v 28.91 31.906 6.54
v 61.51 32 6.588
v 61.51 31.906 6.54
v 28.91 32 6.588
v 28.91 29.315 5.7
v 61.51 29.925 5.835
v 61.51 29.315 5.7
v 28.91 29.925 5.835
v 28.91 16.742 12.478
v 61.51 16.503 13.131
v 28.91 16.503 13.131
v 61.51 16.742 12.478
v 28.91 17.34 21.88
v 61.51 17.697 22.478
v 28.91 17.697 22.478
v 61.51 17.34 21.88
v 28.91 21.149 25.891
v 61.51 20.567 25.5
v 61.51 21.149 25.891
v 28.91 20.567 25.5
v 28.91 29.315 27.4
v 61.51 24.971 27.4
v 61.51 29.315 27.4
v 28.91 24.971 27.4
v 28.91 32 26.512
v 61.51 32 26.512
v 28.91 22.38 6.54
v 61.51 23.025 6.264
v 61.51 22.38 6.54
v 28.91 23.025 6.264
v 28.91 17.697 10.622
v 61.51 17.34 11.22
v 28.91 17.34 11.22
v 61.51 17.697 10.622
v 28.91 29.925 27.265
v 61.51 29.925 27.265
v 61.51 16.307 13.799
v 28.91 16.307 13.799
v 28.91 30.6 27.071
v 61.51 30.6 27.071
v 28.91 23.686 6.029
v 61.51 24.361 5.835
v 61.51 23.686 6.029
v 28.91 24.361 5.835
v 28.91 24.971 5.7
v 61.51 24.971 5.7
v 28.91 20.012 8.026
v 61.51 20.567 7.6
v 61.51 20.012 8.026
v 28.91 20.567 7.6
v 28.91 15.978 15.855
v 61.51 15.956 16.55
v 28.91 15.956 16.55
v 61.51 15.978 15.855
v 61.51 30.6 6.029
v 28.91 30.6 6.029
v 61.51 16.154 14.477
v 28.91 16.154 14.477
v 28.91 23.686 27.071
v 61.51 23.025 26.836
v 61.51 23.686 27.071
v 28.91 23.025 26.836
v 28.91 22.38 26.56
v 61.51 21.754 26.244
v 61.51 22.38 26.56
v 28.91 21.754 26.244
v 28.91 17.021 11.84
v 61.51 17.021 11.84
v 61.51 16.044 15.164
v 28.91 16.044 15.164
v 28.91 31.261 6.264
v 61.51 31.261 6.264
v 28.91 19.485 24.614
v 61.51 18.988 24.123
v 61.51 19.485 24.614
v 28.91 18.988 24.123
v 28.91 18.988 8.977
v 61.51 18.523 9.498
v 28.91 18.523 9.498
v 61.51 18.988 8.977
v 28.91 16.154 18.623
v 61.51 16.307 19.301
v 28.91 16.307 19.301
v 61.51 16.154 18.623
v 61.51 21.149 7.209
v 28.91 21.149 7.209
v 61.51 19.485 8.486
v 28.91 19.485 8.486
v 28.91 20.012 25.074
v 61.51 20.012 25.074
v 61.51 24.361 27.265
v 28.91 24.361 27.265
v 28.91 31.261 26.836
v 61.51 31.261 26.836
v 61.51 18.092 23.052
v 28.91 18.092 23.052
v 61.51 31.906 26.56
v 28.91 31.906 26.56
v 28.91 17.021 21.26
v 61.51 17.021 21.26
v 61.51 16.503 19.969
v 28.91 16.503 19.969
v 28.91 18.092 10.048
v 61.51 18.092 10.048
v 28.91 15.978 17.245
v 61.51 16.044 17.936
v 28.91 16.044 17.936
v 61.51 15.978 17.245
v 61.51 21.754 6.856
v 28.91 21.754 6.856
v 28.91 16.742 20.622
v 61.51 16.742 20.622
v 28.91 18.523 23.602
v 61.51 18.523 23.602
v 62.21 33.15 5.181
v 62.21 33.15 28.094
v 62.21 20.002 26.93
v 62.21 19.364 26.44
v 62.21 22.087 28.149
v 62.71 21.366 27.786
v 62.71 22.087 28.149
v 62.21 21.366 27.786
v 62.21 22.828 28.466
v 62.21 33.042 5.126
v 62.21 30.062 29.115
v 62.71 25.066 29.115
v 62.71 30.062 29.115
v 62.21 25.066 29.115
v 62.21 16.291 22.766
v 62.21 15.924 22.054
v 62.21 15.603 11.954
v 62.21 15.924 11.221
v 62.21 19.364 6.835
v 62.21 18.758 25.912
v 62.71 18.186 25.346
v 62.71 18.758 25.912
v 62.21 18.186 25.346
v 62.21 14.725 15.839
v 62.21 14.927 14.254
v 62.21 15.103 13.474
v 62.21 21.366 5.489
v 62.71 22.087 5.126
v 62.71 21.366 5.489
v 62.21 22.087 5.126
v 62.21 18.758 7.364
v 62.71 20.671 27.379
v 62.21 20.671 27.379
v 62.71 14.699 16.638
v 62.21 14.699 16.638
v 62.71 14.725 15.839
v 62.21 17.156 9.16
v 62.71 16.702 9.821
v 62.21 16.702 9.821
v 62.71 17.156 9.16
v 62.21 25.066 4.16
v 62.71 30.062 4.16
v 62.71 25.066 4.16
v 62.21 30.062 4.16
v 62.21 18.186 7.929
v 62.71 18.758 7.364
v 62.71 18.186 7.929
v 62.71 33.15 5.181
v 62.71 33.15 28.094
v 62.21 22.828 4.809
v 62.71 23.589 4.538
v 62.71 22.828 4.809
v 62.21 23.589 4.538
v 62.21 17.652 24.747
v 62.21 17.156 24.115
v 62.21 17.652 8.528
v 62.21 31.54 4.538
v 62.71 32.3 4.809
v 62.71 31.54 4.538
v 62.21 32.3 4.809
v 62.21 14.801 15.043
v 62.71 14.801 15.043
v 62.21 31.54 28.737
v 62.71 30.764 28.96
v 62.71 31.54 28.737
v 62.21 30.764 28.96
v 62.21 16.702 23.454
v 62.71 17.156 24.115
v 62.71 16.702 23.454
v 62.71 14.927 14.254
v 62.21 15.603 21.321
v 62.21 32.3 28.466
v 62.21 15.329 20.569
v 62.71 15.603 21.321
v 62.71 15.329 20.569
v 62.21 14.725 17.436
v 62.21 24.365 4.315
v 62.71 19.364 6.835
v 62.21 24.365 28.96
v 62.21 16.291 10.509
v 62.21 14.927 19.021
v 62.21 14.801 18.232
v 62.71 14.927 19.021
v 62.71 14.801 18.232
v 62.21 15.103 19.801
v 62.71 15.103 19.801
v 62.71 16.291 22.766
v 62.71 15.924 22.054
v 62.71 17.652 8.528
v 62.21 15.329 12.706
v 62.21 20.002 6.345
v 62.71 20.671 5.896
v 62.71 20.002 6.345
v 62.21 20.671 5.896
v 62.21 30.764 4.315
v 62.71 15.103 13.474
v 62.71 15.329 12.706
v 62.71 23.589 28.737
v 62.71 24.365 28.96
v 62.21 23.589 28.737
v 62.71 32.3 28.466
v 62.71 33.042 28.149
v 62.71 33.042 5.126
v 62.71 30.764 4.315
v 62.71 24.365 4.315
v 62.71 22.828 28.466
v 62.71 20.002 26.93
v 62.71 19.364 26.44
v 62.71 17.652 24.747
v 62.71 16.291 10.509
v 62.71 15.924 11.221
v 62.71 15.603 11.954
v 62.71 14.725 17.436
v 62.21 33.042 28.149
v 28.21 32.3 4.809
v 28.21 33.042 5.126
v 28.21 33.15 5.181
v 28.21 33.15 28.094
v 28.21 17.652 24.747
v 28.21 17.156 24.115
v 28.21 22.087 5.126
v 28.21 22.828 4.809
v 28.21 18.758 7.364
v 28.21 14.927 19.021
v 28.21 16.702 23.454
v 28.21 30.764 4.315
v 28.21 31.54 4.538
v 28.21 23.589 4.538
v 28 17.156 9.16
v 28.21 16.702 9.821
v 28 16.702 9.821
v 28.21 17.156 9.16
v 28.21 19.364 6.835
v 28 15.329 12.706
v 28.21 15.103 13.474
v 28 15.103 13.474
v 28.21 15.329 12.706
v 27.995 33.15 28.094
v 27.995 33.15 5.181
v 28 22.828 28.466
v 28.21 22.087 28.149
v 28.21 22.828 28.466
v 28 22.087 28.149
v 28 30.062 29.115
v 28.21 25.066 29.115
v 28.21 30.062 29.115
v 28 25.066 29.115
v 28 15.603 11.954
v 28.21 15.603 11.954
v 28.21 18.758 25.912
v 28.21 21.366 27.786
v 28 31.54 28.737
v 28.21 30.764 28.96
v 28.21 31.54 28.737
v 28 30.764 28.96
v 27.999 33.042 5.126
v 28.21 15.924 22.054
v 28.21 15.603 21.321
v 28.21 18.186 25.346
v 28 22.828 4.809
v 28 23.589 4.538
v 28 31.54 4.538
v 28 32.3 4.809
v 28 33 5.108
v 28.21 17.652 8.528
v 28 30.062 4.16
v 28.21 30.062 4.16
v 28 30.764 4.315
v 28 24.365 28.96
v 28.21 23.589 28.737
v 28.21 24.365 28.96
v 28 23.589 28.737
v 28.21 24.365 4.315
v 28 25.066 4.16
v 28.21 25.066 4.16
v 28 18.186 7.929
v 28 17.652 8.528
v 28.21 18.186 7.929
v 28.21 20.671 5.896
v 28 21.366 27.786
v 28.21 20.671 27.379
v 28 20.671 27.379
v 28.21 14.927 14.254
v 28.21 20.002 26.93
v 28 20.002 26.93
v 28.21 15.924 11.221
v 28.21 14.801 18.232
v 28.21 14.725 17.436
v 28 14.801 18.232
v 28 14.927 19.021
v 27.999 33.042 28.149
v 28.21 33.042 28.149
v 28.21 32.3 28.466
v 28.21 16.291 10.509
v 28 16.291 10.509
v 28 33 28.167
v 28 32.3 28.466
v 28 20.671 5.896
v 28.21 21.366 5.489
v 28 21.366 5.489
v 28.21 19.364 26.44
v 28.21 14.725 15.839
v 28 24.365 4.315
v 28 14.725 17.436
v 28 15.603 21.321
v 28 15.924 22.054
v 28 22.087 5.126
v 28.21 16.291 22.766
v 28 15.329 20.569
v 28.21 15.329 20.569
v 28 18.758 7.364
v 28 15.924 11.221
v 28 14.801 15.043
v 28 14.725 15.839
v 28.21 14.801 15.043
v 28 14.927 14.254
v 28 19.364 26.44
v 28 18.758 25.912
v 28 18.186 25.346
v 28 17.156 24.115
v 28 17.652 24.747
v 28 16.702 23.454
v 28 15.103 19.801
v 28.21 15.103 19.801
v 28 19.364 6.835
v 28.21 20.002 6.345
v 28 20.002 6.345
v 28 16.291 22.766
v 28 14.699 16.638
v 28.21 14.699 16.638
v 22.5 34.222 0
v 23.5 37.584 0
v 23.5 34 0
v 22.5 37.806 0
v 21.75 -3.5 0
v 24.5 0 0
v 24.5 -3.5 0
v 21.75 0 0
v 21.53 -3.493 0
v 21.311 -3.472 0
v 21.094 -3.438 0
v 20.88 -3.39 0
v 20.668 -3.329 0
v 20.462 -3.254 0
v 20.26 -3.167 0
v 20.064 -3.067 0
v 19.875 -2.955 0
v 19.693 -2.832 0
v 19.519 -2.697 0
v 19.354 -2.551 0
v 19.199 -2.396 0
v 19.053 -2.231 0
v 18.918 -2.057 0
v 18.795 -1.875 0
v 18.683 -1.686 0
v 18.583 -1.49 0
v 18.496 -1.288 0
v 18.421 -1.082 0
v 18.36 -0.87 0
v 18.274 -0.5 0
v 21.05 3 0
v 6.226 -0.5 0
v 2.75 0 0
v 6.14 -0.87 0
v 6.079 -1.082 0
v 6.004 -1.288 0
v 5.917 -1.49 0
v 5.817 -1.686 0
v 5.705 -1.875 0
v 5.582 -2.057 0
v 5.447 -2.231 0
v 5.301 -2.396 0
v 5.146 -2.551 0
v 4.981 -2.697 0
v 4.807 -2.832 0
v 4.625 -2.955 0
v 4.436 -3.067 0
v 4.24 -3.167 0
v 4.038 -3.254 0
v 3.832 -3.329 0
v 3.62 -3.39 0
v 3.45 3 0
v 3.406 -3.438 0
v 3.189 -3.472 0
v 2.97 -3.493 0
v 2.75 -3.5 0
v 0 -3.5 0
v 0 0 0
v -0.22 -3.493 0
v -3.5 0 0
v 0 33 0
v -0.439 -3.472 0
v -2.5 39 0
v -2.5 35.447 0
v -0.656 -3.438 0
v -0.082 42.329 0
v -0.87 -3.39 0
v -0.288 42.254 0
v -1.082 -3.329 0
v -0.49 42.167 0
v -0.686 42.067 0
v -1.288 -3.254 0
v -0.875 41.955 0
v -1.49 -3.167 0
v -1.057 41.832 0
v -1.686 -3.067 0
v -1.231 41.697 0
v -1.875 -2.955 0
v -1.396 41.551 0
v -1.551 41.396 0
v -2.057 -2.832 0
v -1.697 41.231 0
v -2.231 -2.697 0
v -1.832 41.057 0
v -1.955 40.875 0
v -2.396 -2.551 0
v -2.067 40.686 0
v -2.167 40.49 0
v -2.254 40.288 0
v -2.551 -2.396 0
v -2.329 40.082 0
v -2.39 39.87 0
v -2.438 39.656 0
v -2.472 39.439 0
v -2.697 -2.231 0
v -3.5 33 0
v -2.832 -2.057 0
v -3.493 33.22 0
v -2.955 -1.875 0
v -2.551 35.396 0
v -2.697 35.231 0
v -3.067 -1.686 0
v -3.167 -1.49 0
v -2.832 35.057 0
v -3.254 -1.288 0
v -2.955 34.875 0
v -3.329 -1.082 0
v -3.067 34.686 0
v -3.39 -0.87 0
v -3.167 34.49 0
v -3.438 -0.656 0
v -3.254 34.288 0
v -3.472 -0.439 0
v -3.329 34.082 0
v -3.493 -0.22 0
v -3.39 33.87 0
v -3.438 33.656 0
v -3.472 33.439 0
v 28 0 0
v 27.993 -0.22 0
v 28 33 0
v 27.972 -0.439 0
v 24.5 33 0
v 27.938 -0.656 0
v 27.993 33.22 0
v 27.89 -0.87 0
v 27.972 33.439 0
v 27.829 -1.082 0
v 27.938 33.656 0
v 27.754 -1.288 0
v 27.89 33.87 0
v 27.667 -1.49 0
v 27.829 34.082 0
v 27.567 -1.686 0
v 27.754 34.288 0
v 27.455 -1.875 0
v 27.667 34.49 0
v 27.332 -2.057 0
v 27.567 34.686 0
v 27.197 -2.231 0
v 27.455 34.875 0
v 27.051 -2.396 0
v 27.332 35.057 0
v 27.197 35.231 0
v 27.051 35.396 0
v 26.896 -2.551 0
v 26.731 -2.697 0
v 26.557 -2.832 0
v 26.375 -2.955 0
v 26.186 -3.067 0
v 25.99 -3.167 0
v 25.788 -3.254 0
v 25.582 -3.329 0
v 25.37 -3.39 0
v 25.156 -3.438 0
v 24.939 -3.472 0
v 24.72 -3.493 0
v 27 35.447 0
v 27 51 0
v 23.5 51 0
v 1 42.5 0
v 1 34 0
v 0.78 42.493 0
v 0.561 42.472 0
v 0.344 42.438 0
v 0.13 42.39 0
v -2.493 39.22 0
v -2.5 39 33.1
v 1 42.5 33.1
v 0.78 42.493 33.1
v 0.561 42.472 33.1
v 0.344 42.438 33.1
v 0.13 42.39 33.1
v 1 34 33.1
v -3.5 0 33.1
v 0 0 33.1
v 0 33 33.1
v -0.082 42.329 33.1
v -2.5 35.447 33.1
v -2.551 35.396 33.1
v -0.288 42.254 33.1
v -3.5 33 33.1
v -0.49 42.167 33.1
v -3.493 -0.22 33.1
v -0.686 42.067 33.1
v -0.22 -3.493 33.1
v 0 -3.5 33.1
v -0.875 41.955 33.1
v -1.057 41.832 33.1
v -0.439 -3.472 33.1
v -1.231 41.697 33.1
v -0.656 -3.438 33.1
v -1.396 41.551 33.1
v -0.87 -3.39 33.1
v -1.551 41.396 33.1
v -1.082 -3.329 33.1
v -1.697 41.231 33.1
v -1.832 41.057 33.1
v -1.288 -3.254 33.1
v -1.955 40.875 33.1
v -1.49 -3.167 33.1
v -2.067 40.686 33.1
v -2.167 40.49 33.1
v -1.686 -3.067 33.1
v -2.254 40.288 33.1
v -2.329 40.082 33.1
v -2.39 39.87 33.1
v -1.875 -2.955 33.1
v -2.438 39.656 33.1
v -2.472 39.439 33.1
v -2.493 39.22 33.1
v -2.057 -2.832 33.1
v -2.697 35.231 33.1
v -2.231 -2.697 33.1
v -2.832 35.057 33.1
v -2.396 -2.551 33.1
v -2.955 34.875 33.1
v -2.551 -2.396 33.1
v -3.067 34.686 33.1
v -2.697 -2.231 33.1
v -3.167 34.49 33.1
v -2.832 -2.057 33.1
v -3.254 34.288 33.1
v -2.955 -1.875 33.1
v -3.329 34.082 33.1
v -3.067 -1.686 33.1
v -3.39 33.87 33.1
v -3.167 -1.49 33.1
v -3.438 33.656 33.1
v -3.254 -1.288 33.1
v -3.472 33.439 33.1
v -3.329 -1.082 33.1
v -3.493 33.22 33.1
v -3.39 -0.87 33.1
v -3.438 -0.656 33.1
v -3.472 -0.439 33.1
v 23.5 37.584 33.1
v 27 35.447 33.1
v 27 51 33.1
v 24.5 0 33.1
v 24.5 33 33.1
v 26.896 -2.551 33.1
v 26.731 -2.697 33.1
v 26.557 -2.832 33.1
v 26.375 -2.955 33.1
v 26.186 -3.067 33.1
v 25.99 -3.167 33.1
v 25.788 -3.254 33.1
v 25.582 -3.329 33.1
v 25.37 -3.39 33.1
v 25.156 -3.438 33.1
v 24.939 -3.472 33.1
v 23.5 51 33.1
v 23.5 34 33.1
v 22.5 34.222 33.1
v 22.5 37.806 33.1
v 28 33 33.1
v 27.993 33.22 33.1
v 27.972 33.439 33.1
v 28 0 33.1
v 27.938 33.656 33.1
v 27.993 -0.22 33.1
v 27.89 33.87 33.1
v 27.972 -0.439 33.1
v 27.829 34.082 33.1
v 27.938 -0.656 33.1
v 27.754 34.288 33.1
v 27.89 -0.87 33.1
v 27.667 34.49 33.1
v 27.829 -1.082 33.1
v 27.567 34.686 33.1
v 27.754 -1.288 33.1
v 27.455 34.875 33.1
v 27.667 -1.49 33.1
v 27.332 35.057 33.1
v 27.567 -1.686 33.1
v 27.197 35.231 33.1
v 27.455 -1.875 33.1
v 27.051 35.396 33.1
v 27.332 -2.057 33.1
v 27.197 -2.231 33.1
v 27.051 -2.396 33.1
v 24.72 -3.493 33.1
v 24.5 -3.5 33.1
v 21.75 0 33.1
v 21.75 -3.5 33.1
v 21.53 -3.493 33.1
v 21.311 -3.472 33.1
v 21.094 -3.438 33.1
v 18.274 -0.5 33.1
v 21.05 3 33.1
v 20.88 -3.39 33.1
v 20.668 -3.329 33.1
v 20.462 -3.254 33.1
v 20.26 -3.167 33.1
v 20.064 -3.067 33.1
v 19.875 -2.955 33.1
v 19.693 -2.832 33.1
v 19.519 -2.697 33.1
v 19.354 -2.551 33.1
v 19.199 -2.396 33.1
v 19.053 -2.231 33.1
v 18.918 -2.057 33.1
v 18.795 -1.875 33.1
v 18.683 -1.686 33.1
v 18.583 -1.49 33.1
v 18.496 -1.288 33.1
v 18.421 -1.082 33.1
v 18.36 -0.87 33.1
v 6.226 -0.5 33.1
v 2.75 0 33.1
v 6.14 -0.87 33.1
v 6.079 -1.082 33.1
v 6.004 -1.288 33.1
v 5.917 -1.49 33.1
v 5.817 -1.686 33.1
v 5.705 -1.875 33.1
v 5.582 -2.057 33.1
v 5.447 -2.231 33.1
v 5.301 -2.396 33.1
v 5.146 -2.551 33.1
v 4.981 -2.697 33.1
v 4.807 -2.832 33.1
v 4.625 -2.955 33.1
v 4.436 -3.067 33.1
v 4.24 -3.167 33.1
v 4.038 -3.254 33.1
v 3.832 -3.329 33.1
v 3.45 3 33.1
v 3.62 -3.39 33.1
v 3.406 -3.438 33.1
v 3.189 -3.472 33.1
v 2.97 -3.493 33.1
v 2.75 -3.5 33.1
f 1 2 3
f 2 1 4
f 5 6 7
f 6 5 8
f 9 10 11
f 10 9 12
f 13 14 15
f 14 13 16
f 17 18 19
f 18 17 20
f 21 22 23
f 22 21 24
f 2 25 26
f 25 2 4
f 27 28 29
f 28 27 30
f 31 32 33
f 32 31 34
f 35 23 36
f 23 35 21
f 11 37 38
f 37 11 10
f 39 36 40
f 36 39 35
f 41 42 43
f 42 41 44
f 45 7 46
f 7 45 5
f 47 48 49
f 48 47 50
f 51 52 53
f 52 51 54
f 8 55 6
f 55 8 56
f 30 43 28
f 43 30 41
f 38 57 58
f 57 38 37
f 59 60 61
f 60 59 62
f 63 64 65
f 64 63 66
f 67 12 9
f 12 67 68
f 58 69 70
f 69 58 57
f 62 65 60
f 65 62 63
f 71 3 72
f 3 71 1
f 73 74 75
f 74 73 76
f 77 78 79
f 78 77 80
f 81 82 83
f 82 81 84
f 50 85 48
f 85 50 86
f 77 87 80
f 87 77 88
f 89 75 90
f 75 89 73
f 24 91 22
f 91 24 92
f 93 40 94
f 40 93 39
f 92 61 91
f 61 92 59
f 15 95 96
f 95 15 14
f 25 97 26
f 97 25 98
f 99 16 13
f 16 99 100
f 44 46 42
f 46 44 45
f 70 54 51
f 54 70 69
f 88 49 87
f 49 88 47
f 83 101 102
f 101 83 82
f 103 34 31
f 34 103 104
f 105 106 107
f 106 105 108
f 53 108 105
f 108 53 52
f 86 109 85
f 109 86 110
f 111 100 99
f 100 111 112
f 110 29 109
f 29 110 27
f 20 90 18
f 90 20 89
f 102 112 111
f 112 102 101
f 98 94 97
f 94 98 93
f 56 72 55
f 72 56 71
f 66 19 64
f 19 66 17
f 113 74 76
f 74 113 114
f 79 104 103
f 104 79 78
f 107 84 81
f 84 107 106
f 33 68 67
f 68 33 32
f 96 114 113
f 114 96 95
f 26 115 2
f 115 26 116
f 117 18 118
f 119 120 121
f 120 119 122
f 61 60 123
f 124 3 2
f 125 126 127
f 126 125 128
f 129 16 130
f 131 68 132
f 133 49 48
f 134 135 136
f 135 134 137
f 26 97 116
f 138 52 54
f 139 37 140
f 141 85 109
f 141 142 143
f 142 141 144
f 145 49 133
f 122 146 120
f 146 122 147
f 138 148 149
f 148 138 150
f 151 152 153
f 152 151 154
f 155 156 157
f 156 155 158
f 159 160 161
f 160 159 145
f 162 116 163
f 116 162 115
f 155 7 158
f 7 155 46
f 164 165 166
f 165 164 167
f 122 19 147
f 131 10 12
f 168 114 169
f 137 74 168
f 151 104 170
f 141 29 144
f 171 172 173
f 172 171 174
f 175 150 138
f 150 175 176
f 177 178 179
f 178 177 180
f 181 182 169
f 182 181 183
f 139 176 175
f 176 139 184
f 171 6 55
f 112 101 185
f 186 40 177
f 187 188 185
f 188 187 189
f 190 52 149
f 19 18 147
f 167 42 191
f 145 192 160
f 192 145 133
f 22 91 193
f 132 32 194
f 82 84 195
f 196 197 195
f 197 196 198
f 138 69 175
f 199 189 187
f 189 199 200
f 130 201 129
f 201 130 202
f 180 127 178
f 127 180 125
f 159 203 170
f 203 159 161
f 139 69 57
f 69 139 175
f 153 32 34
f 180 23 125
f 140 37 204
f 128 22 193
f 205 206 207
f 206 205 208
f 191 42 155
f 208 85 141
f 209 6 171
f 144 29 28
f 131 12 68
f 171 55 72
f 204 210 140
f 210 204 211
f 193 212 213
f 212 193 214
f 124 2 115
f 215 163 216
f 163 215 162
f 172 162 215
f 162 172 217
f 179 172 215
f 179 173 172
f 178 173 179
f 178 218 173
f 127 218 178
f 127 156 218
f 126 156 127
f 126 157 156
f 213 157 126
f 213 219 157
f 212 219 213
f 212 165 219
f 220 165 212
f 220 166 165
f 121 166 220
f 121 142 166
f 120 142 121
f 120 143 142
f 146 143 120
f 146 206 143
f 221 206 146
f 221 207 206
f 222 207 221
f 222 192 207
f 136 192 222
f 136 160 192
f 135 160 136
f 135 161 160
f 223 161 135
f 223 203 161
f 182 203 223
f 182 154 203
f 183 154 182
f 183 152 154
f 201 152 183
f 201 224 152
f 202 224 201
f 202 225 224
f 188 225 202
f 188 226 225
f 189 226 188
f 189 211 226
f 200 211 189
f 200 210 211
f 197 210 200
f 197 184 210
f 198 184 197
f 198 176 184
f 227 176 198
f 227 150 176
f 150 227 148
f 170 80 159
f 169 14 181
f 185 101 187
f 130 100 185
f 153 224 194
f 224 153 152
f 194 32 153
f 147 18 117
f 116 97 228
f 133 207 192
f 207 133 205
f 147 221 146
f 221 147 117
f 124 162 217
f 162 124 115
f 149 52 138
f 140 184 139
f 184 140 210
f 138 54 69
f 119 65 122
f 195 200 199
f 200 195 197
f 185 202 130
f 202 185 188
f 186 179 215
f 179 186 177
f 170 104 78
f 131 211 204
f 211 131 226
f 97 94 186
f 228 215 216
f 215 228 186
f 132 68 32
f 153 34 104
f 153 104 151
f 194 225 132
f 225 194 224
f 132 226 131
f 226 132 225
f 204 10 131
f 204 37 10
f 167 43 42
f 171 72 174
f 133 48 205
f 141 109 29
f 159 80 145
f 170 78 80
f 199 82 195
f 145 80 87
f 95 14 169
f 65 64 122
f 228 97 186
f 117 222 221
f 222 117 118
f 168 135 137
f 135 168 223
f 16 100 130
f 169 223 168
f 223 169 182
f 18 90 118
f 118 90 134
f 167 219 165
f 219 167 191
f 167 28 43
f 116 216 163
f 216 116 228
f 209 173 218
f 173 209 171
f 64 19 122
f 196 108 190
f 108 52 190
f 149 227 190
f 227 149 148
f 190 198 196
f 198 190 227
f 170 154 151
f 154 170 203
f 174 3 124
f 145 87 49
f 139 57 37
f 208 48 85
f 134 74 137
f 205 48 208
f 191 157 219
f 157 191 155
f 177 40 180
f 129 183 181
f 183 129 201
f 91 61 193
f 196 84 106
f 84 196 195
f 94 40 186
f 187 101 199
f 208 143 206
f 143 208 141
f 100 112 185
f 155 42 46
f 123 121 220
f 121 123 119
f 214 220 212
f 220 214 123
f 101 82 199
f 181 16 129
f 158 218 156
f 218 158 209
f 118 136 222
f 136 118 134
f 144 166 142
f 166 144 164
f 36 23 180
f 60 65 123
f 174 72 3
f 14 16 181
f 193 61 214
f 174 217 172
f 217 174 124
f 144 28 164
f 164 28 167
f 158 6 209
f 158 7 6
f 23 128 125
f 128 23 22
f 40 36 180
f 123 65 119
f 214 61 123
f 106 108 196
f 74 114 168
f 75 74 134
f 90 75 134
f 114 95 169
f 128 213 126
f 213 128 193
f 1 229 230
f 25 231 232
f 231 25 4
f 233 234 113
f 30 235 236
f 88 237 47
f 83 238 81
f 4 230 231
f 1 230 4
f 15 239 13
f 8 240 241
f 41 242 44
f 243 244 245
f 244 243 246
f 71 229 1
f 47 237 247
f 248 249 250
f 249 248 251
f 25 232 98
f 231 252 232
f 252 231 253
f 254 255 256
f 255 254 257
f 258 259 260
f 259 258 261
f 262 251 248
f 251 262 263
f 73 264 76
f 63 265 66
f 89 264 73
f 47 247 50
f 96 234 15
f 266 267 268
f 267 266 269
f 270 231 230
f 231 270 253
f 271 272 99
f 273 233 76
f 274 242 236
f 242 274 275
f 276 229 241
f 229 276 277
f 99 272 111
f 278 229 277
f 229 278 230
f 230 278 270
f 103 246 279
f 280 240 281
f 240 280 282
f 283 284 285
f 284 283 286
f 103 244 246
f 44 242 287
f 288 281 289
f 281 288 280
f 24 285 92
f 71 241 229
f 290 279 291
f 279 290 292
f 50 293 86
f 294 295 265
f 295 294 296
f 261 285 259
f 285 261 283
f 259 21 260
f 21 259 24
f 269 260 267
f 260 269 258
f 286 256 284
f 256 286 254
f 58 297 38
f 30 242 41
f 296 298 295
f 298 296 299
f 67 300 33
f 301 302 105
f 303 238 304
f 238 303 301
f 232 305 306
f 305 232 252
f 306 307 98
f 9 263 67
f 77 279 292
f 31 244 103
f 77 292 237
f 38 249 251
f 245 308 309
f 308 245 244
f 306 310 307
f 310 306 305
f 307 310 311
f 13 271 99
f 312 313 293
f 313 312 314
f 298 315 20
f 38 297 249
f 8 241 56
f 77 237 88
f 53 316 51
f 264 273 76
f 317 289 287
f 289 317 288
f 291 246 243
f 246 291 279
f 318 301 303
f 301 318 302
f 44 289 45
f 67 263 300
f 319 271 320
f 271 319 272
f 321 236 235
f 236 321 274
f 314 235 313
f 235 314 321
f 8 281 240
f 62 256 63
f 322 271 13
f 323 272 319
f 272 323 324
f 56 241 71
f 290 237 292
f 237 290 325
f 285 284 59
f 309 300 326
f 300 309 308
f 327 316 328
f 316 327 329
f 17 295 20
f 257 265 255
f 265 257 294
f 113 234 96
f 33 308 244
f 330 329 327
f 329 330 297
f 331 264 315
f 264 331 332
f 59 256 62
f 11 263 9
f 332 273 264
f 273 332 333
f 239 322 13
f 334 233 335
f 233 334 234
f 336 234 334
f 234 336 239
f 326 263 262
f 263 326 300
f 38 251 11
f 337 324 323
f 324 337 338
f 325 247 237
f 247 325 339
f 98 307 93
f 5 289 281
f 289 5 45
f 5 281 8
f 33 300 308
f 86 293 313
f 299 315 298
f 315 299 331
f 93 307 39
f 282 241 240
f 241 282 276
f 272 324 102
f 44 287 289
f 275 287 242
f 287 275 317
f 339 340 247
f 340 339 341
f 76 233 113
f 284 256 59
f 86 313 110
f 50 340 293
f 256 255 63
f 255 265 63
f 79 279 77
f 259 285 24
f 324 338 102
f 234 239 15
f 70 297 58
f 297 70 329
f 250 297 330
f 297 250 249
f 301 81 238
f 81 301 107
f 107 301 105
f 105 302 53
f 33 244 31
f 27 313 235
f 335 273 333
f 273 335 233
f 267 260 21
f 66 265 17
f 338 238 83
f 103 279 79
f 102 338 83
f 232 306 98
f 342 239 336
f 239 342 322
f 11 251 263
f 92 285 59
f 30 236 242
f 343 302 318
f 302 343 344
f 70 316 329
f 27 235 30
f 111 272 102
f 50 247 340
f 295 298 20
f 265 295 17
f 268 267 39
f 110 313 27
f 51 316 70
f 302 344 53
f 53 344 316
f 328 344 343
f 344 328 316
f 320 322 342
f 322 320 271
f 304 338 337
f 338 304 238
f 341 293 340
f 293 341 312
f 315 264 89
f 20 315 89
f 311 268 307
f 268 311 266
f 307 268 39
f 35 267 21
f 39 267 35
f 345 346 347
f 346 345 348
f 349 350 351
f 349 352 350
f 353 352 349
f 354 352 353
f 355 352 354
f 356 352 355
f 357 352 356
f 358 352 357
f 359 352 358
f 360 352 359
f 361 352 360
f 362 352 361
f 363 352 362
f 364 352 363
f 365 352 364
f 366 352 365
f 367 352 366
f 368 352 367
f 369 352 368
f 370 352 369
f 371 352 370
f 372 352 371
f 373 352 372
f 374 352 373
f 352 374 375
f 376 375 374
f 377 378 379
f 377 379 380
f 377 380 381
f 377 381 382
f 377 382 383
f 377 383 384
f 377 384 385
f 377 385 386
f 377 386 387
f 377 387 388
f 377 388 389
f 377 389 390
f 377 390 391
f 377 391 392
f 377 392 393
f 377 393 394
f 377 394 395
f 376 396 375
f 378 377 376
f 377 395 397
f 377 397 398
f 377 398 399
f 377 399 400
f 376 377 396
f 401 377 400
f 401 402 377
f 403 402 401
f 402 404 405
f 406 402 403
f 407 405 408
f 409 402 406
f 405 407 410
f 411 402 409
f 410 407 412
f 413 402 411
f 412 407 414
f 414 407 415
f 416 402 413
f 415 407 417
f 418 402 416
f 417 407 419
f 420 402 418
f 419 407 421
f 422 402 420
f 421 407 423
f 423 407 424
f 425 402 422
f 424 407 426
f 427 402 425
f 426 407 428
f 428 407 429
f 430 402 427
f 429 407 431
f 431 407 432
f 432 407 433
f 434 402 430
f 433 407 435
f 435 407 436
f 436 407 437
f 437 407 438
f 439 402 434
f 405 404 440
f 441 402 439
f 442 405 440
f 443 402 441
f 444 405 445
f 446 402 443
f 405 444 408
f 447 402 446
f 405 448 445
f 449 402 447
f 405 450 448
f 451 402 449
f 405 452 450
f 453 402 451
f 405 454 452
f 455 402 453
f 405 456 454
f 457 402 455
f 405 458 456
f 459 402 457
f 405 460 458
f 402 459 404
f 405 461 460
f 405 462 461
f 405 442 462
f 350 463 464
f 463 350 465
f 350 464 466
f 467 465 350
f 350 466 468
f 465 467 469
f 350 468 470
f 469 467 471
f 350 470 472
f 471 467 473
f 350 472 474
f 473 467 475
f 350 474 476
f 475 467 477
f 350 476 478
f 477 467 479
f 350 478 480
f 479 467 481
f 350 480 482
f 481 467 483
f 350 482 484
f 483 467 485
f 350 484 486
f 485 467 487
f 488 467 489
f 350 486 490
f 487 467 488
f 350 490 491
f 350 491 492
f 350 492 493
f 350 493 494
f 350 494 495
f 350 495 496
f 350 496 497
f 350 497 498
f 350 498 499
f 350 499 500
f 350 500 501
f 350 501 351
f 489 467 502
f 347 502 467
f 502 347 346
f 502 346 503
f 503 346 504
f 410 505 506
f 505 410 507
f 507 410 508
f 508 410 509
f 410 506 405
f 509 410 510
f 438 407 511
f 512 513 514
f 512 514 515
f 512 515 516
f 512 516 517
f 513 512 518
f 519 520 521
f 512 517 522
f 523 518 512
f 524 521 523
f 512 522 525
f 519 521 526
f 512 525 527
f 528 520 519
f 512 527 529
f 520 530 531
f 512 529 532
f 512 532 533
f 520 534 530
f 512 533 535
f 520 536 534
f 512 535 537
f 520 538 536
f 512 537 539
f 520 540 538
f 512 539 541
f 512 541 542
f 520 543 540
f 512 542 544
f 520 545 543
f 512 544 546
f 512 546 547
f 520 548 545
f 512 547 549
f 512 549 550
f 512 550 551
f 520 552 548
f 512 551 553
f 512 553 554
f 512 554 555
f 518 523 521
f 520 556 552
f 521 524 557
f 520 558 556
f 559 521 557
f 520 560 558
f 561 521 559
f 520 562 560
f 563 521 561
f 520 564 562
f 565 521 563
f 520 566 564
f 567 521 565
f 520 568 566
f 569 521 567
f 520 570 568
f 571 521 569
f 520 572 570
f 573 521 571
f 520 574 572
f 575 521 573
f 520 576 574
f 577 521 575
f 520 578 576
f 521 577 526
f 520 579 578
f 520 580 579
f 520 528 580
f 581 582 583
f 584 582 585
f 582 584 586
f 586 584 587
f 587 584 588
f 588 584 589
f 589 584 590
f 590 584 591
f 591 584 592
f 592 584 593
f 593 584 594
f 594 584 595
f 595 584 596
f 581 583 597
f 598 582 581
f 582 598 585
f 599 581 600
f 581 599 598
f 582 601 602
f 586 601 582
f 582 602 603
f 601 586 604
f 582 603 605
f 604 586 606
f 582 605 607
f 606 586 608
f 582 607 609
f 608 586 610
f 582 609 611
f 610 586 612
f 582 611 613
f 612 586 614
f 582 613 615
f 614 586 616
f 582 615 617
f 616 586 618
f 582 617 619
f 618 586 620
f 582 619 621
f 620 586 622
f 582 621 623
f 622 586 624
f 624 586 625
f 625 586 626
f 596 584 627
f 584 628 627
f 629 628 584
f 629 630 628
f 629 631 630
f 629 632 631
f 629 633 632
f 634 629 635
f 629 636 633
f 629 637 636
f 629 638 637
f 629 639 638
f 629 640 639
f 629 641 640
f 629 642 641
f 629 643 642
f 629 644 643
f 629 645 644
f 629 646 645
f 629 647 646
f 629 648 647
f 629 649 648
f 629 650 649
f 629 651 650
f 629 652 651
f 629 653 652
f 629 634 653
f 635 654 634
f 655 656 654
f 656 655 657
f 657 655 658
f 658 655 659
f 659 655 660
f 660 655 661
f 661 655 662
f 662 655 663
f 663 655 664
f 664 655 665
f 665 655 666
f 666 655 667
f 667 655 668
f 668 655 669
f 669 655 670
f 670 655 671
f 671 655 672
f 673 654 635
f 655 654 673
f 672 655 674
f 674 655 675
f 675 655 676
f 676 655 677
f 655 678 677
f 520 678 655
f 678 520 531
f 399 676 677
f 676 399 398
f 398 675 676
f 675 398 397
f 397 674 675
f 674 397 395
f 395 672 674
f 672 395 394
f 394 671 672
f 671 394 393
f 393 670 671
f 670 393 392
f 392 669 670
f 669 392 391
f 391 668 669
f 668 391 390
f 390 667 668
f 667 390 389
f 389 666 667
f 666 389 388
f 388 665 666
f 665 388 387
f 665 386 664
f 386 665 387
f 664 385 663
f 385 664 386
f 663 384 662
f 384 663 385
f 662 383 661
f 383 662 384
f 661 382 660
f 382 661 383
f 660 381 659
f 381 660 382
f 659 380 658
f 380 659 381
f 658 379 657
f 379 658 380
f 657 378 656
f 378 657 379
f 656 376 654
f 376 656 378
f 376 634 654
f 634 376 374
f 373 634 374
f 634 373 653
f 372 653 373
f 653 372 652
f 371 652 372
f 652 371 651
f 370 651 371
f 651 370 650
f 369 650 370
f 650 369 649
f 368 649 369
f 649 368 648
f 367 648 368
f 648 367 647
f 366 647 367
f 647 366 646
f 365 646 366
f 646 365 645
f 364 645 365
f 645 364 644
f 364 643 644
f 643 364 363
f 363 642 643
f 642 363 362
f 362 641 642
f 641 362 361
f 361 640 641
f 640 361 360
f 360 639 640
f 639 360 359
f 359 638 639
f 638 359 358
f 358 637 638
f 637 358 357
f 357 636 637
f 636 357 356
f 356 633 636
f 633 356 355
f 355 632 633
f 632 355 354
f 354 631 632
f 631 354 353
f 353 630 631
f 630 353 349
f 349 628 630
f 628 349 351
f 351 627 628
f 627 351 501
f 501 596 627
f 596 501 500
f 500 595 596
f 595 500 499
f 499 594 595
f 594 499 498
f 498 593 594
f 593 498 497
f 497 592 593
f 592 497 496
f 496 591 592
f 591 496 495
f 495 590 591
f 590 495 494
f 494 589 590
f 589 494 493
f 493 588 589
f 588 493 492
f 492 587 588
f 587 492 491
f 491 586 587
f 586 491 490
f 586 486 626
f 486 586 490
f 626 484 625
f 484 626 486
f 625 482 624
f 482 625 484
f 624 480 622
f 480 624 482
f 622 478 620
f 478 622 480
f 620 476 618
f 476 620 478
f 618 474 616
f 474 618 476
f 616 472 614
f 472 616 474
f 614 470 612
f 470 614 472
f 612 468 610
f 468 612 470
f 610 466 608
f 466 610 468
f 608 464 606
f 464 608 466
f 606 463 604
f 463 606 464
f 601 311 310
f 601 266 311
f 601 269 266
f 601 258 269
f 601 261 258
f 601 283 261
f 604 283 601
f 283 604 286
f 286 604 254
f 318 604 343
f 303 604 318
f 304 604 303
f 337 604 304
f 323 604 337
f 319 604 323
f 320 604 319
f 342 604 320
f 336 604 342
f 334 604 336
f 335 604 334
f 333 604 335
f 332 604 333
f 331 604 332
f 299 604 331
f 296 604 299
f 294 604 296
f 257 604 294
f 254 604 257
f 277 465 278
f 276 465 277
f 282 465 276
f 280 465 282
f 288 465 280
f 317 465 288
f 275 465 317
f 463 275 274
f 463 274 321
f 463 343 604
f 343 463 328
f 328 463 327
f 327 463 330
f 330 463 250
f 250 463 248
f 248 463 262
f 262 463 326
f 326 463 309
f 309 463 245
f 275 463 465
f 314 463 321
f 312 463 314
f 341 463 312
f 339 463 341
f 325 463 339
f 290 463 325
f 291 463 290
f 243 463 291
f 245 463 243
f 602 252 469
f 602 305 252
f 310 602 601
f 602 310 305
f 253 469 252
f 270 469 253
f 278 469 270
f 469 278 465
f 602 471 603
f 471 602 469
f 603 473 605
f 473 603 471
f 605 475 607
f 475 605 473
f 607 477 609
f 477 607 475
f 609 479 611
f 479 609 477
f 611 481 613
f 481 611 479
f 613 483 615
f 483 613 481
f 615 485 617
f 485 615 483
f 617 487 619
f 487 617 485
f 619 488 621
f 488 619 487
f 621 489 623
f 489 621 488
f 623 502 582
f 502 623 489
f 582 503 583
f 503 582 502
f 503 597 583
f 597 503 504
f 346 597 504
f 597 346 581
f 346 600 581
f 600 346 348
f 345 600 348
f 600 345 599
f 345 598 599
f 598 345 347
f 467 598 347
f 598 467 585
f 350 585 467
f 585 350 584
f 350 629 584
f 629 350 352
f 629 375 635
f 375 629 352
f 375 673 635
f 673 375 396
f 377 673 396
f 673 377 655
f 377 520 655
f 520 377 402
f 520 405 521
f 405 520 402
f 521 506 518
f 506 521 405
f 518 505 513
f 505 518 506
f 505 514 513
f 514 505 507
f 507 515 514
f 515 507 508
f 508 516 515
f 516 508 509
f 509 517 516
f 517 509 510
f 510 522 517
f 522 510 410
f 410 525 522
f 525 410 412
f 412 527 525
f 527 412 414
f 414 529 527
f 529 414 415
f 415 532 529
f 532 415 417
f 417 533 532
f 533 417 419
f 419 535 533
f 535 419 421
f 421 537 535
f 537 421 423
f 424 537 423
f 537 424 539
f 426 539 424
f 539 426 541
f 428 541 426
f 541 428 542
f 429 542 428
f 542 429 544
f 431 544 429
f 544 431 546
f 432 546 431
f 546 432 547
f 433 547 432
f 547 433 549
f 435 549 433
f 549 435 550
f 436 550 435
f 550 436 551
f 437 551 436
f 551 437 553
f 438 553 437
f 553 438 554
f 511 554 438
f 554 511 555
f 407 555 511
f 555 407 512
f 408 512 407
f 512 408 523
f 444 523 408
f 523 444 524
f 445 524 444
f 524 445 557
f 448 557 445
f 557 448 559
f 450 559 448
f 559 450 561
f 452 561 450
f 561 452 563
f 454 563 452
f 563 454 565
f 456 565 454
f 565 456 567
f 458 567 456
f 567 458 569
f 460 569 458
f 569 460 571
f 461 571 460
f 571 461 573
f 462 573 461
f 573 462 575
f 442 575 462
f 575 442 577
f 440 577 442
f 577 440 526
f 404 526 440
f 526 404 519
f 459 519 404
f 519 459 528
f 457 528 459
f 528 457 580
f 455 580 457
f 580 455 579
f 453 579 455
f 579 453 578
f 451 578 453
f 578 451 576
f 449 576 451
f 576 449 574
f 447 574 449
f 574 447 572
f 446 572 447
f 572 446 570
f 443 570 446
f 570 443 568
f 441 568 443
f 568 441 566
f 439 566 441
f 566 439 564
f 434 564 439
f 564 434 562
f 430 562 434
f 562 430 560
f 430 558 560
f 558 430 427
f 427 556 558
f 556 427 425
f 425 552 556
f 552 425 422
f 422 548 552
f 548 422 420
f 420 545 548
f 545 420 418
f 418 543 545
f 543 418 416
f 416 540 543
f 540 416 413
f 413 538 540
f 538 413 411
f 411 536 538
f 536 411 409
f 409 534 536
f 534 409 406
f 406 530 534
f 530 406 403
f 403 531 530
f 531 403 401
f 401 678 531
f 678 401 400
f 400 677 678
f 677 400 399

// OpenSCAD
// file: ../libraries/scad-utils/mirror.scad
// Copyright (c) 2013 Oskar Linde. All rights reserved.
// License: BSD
//
// This library contains simple mirroring functions
//
// mirror_x()
// mirror_y()
// mirror_z()


module mirror_x() {
  union() {
    child();
    scale([-1,1,1]) child();
  }
}

module mirror_y() {
  union() {
    child();
    scale([1,-1,1]) child();
  }
}

module mirror_z() {
  union() {
    child();
    scale([1,1,-1]) child();
  }
}
// file: ../libraries/scad-utils/morphology.scad
// Copyright (c) 2013 Oskar Linde. All rights reserved.
// License: BSD
//
// This library contains basic 2D morphology operations
//
// outset(d=1)            - creates a polygon at an offset d outside a 2D shape
// inset(d=1)             - creates a polygon at an offset d inside a 2D shape
// fillet(r=1)            - adds fillets of radius r to all concave corners of a 2D shape
// rounding(r=1)          - adds rounding to all convex corners of a 2D shape
// shell(d,center=false)  - makes a shell of width d along the edge of a 2D shape
//                        - positive values of d places the shell on the outside
//                        - negative values of d places the shell on the inside
//                        - center=true and positive d places the shell centered on the edge

module outset(d=1) {
  // Bug workaround for older OpenSCAD versions
  if (version_num() < 20130424) render() outset_extruded(d) child();
  else minkowski() {
    circle(r=d);
    child();
  }
}

module outset_extruded(d=1) {
   projection(cut=true) minkowski() {
        cylinder(r=d);
        linear_extrude(center=true) child();
   }
}

module inset(d=1) {
   render() inverse() outset(d=d) inverse() child();
}

module fillet(r=1) {
  inset(d=r) render() outset(d=r) child();
}

module rounding(r=1) {
  outset(d=r) inset(d=r) child();
}

module shell(d,center=false) {
  if (center && d > 0) {
    difference() {
      outset(d=d/2) child();
      inset(d=d/2) child();
    }
  }
  if (!center && d > 0) {
    difference() {
      outset(d=d) child();
      child();
    }
  }
  if (!center && d < 0) {
    difference() {
      child();
      inset(d=-d) child();
    }
  }
  if (d == 0) child();
}


// Below are for internal use only

module inverse() {
  difference() {
    square(1e5,center=true);
    child();
  }
}


// TEST CODE

use <mirror.scad>

module arrow(l=1,w=.6,t=0.15) {
  mirror_y() polygon([[0,0],[l,0],[l-w/2,w/2],[l-w/2-sqrt(2)*t,w/2],[l-t/2-sqrt(2)*t,t/2],[0,t/2]]);
}

module shape() {
  polygon([[0,0],[1,0],[1.5,1],[2.5,1],[2,-1],[0,-1]]);
}

if(0) assign($fn=32) {

  for (p = [0:10*3-1]) assign(o=floor(p/3)) {
    translate([(p%3)*2.5,-o*3]) {
      //%if (p % 3 == 1) translate([0,0,1]) shape();
      if (p % 3 == 0) shape();
      if (p % 3 == 1) translate([0.6,0]) arrow();
      if (p % 3 == 2) {
        if (o == 0) inset(d=0.3) shape();
        if (o == 1) outset(d=0.3) shape();
        if (o == 2) rounding(r=0.3) shape();
        if (o == 3) fillet(r=0.3) shape();
        if (o == 4) shell(d=0.3) shape();
        if (o == 5) shell(d=-0.3) shape();
        if (o == 6) shell(d=0.3,center=true) shape();
        if (o == 7) rounding(r=0.3) fillet(r=0.3) shape();
        if (o == 8) shell(d=0.3,center=true) fillet(r=0.3) rounding(r=0.3) shape();
        if (o == 9) shell(d=-0.3) fillet(r=0.3) rounding(r=0.3) shape();
      }
    }
  }
}
// main file
////////////////////////////////////////////////////////////////////////
// Initial Revision:
//  2019-Jun-27
//
// Author:
//
//   David Crook <idcrook@users.noreply.github.com>
//
// Inspired by:
//
//   - Necessity
//
// Description:
//
//
//
//
// Revisions/Notes:
//
//  - Developed on OpenSCAD 2019.05
//
////////////////////////////////////////////////////////////////////////


use <../libraries/scad-utils/morphology.scad>


e = 0.02; // small number


// Measurements
//

shower_wall_top_interior_width = 24.5;
shower_wall_top_interior_valley_width = 19.0;
shower_wall_top_interior_valley_depth = 3.0;
shower_wall_rear_side_straight_height = 24.5;
shower_wall_rear_side_full_height = 34.0;
shower_wall_rear_side_extension_height = 5.0;
shower_wall_front_side_extension_height = 17.0;

shower_wall_rear_side_taper_distance = shower_wall_rear_side_full_height - shower_wall_rear_side_straight_height;
shower_wall_rear_side_taper_round_radius = 1.0;

caddy_groove_diameter = 22.6;
caddy_groove_height = 17.0;
caddy_thickness_front_to_back = 29.5 + 5;

// Other dimensions
mount_thickness = 3.5;
mount_width_thickness_scale = 3;
mount_width_thickness_scaled = mount_width_thickness_scale*mount_thickness;
mount_width_across = caddy_groove_diameter + mount_width_thickness_scaled;

module shower_caddy_hanging_mount () {

  top_bracket() ;

  translate([shower_wall_top_interior_width + mount_thickness - 2*e + caddy_thickness_front_to_back,
             32,
              caddy_groove_diameter + (1/2)*mount_width_thickness_scaled])
    rotate(a = [0, 90, 180])
    rotate(a = [0, 0, 0])
    caddy_support_knob () ;

}


module top_bracket () {

  top_interior_width = shower_wall_top_interior_width;
  groove_width = shower_wall_top_interior_valley_width;
  groove_depth = shower_wall_top_interior_valley_depth;
  straight_height = shower_wall_rear_side_straight_height;
  full_rear_height = shower_wall_rear_side_full_height;
  rear_height_extension = shower_wall_rear_side_extension_height;
  front_lip_height = shower_wall_front_side_extension_height;
  taper_radius =  shower_wall_rear_side_taper_round_radius;
  bracket_thickness = mount_thickness;
  bracket_height = mount_width_across;
  //bracket_height = 12;  // for test prints

  // assume its symmetrical
  groove_gap = (1/2)*(top_interior_width - groove_width);
  groove_slant = 0.7;

  origin = [0,0];
  groove_start = origin.x + groove_gap;
  groove_stop =  origin.x + groove_gap + groove_width;
  opposite_side = groove_stop + groove_gap ;
  extra_front_padding = 1.0;

  minus_square = [(opposite_side - taper_radius) - (origin.x + taper_radius) - extra_front_padding,
                  rear_height_extension + front_lip_height];

  // 2d outline of bracket interior
  bracket_crossxn_points = [
    [origin.x + 0, origin.y + 0],
    [groove_start, origin.y + 0],
    [groove_start + groove_slant, origin.y + groove_depth],
    [groove_stop  - groove_slant,  origin.y + groove_depth],
    [groove_stop,  origin.y + 0],
    // start on front
    [opposite_side,  origin.y + 0],
    [opposite_side,  origin.y + straight_height],
    [opposite_side,                 origin.y + full_rear_height - taper_radius],
    [opposite_side - taper_radius,  origin.y + full_rear_height],
    // jump back to rear
    [origin.x + taper_radius,  origin.y + full_rear_height + rear_height_extension],
    [origin.x + taper_radius,  origin.y + full_rear_height],
    [origin.x + 0,             origin.y + full_rear_height - taper_radius],
    [origin.x + 0, origin.y + 0]];


  linear_extrude(height = bracket_height)
    difference() {
    union() {
      shell(d=bracket_thickness)
        polygon(points = bracket_crossxn_points);
      // front lip
      translate([opposite_side - taper_radius, origin.y + full_rear_height])
        square([bracket_thickness, front_lip_height]);
    }
    // cut out bridging piece that is an artifact from polygon contruction
    translate([origin.x + taper_radius, origin.y + full_rear_height])
      square([minus_square.x, minus_square.y]);
  };

}


module caddy_support_knob () {

  knob_diameter = caddy_groove_diameter;
  knob_sidewall_height = caddy_groove_height;

  knob_length = caddy_thickness_front_to_back;
  // knob_length = 15;  // for test prints

  // trim some off the sides
  square_width = knob_diameter - 0.9;
  flange_length = 0.7;

  support_knob_prism(height = knob_length,
                     knob_diameter = knob_diameter,
                     knob_width = square_width,
                     sidewall_height = knob_sidewall_height);

  // create a flange, using projections
  hull() {
    // scale projection outline
    linear_extrude(center = true, height = 0.5)
      scale([1.15,1.15]) /* spitballed these */
      translate([-1.55,-1.0])
      projection(cut = false)
      support_knob_prism(height = knob_length,
                         knob_diameter = knob_diameter,
                         knob_width = square_width,
                         sidewall_height = knob_sidewall_height);

    // shift up same projection
    translate([0, 0, flange_length])
      linear_extrude(center = true, height = 0.5)
      projection(cut = false)
      support_knob_prism(height = knob_length,
                         knob_diameter = knob_diameter,
                         knob_width = square_width,
                         sidewall_height = knob_sidewall_height);
  }


// create a flange, using projections
  translate([0, 0, caddy_thickness_front_to_back])
  hull() {
    // scale projection outline
    linear_extrude(center = true, height = 0.5)
      scale([1.15,1.15]) /* spitballed these */
      translate([-1.55,-1.0])
      projection(cut = false)
      support_knob_prism(height = knob_length,
                         knob_diameter = knob_diameter,
                         knob_width = square_width,
                         sidewall_height = knob_sidewall_height);

    // shift up same projection
    translate([0, 0, -flange_length])
      linear_extrude(center = true, height = 0.5)
      projection(cut = false)
      support_knob_prism(height = knob_length,
                         knob_diameter = knob_diameter,
                         knob_width = square_width,
                         sidewall_height = knob_sidewall_height);
  }

}

module support_knob_prism (height, knob_diameter, knob_width, sidewall_height) {
  knob_radius = knob_diameter/2;

  square_corner = [0 + (1/2)*(knob_diameter - knob_width), 0];
  knob_center = [knob_radius, (2/7)*sidewall_height];

  linear_extrude (height = height, center = false)
    // kinda like a bread loaf-- with a rounded top
    intersection() {
    translate([square_corner.x, square_corner.y])
      square([knob_width, sidewall_height]);
    translate([knob_center.x, knob_center.y])
      scale([0.89,0.90])
      circle(r=knob_radius*1.1);
  }

}

$fn = $preview ? 30 : 100;
shower_caddy_hanging_mount();
